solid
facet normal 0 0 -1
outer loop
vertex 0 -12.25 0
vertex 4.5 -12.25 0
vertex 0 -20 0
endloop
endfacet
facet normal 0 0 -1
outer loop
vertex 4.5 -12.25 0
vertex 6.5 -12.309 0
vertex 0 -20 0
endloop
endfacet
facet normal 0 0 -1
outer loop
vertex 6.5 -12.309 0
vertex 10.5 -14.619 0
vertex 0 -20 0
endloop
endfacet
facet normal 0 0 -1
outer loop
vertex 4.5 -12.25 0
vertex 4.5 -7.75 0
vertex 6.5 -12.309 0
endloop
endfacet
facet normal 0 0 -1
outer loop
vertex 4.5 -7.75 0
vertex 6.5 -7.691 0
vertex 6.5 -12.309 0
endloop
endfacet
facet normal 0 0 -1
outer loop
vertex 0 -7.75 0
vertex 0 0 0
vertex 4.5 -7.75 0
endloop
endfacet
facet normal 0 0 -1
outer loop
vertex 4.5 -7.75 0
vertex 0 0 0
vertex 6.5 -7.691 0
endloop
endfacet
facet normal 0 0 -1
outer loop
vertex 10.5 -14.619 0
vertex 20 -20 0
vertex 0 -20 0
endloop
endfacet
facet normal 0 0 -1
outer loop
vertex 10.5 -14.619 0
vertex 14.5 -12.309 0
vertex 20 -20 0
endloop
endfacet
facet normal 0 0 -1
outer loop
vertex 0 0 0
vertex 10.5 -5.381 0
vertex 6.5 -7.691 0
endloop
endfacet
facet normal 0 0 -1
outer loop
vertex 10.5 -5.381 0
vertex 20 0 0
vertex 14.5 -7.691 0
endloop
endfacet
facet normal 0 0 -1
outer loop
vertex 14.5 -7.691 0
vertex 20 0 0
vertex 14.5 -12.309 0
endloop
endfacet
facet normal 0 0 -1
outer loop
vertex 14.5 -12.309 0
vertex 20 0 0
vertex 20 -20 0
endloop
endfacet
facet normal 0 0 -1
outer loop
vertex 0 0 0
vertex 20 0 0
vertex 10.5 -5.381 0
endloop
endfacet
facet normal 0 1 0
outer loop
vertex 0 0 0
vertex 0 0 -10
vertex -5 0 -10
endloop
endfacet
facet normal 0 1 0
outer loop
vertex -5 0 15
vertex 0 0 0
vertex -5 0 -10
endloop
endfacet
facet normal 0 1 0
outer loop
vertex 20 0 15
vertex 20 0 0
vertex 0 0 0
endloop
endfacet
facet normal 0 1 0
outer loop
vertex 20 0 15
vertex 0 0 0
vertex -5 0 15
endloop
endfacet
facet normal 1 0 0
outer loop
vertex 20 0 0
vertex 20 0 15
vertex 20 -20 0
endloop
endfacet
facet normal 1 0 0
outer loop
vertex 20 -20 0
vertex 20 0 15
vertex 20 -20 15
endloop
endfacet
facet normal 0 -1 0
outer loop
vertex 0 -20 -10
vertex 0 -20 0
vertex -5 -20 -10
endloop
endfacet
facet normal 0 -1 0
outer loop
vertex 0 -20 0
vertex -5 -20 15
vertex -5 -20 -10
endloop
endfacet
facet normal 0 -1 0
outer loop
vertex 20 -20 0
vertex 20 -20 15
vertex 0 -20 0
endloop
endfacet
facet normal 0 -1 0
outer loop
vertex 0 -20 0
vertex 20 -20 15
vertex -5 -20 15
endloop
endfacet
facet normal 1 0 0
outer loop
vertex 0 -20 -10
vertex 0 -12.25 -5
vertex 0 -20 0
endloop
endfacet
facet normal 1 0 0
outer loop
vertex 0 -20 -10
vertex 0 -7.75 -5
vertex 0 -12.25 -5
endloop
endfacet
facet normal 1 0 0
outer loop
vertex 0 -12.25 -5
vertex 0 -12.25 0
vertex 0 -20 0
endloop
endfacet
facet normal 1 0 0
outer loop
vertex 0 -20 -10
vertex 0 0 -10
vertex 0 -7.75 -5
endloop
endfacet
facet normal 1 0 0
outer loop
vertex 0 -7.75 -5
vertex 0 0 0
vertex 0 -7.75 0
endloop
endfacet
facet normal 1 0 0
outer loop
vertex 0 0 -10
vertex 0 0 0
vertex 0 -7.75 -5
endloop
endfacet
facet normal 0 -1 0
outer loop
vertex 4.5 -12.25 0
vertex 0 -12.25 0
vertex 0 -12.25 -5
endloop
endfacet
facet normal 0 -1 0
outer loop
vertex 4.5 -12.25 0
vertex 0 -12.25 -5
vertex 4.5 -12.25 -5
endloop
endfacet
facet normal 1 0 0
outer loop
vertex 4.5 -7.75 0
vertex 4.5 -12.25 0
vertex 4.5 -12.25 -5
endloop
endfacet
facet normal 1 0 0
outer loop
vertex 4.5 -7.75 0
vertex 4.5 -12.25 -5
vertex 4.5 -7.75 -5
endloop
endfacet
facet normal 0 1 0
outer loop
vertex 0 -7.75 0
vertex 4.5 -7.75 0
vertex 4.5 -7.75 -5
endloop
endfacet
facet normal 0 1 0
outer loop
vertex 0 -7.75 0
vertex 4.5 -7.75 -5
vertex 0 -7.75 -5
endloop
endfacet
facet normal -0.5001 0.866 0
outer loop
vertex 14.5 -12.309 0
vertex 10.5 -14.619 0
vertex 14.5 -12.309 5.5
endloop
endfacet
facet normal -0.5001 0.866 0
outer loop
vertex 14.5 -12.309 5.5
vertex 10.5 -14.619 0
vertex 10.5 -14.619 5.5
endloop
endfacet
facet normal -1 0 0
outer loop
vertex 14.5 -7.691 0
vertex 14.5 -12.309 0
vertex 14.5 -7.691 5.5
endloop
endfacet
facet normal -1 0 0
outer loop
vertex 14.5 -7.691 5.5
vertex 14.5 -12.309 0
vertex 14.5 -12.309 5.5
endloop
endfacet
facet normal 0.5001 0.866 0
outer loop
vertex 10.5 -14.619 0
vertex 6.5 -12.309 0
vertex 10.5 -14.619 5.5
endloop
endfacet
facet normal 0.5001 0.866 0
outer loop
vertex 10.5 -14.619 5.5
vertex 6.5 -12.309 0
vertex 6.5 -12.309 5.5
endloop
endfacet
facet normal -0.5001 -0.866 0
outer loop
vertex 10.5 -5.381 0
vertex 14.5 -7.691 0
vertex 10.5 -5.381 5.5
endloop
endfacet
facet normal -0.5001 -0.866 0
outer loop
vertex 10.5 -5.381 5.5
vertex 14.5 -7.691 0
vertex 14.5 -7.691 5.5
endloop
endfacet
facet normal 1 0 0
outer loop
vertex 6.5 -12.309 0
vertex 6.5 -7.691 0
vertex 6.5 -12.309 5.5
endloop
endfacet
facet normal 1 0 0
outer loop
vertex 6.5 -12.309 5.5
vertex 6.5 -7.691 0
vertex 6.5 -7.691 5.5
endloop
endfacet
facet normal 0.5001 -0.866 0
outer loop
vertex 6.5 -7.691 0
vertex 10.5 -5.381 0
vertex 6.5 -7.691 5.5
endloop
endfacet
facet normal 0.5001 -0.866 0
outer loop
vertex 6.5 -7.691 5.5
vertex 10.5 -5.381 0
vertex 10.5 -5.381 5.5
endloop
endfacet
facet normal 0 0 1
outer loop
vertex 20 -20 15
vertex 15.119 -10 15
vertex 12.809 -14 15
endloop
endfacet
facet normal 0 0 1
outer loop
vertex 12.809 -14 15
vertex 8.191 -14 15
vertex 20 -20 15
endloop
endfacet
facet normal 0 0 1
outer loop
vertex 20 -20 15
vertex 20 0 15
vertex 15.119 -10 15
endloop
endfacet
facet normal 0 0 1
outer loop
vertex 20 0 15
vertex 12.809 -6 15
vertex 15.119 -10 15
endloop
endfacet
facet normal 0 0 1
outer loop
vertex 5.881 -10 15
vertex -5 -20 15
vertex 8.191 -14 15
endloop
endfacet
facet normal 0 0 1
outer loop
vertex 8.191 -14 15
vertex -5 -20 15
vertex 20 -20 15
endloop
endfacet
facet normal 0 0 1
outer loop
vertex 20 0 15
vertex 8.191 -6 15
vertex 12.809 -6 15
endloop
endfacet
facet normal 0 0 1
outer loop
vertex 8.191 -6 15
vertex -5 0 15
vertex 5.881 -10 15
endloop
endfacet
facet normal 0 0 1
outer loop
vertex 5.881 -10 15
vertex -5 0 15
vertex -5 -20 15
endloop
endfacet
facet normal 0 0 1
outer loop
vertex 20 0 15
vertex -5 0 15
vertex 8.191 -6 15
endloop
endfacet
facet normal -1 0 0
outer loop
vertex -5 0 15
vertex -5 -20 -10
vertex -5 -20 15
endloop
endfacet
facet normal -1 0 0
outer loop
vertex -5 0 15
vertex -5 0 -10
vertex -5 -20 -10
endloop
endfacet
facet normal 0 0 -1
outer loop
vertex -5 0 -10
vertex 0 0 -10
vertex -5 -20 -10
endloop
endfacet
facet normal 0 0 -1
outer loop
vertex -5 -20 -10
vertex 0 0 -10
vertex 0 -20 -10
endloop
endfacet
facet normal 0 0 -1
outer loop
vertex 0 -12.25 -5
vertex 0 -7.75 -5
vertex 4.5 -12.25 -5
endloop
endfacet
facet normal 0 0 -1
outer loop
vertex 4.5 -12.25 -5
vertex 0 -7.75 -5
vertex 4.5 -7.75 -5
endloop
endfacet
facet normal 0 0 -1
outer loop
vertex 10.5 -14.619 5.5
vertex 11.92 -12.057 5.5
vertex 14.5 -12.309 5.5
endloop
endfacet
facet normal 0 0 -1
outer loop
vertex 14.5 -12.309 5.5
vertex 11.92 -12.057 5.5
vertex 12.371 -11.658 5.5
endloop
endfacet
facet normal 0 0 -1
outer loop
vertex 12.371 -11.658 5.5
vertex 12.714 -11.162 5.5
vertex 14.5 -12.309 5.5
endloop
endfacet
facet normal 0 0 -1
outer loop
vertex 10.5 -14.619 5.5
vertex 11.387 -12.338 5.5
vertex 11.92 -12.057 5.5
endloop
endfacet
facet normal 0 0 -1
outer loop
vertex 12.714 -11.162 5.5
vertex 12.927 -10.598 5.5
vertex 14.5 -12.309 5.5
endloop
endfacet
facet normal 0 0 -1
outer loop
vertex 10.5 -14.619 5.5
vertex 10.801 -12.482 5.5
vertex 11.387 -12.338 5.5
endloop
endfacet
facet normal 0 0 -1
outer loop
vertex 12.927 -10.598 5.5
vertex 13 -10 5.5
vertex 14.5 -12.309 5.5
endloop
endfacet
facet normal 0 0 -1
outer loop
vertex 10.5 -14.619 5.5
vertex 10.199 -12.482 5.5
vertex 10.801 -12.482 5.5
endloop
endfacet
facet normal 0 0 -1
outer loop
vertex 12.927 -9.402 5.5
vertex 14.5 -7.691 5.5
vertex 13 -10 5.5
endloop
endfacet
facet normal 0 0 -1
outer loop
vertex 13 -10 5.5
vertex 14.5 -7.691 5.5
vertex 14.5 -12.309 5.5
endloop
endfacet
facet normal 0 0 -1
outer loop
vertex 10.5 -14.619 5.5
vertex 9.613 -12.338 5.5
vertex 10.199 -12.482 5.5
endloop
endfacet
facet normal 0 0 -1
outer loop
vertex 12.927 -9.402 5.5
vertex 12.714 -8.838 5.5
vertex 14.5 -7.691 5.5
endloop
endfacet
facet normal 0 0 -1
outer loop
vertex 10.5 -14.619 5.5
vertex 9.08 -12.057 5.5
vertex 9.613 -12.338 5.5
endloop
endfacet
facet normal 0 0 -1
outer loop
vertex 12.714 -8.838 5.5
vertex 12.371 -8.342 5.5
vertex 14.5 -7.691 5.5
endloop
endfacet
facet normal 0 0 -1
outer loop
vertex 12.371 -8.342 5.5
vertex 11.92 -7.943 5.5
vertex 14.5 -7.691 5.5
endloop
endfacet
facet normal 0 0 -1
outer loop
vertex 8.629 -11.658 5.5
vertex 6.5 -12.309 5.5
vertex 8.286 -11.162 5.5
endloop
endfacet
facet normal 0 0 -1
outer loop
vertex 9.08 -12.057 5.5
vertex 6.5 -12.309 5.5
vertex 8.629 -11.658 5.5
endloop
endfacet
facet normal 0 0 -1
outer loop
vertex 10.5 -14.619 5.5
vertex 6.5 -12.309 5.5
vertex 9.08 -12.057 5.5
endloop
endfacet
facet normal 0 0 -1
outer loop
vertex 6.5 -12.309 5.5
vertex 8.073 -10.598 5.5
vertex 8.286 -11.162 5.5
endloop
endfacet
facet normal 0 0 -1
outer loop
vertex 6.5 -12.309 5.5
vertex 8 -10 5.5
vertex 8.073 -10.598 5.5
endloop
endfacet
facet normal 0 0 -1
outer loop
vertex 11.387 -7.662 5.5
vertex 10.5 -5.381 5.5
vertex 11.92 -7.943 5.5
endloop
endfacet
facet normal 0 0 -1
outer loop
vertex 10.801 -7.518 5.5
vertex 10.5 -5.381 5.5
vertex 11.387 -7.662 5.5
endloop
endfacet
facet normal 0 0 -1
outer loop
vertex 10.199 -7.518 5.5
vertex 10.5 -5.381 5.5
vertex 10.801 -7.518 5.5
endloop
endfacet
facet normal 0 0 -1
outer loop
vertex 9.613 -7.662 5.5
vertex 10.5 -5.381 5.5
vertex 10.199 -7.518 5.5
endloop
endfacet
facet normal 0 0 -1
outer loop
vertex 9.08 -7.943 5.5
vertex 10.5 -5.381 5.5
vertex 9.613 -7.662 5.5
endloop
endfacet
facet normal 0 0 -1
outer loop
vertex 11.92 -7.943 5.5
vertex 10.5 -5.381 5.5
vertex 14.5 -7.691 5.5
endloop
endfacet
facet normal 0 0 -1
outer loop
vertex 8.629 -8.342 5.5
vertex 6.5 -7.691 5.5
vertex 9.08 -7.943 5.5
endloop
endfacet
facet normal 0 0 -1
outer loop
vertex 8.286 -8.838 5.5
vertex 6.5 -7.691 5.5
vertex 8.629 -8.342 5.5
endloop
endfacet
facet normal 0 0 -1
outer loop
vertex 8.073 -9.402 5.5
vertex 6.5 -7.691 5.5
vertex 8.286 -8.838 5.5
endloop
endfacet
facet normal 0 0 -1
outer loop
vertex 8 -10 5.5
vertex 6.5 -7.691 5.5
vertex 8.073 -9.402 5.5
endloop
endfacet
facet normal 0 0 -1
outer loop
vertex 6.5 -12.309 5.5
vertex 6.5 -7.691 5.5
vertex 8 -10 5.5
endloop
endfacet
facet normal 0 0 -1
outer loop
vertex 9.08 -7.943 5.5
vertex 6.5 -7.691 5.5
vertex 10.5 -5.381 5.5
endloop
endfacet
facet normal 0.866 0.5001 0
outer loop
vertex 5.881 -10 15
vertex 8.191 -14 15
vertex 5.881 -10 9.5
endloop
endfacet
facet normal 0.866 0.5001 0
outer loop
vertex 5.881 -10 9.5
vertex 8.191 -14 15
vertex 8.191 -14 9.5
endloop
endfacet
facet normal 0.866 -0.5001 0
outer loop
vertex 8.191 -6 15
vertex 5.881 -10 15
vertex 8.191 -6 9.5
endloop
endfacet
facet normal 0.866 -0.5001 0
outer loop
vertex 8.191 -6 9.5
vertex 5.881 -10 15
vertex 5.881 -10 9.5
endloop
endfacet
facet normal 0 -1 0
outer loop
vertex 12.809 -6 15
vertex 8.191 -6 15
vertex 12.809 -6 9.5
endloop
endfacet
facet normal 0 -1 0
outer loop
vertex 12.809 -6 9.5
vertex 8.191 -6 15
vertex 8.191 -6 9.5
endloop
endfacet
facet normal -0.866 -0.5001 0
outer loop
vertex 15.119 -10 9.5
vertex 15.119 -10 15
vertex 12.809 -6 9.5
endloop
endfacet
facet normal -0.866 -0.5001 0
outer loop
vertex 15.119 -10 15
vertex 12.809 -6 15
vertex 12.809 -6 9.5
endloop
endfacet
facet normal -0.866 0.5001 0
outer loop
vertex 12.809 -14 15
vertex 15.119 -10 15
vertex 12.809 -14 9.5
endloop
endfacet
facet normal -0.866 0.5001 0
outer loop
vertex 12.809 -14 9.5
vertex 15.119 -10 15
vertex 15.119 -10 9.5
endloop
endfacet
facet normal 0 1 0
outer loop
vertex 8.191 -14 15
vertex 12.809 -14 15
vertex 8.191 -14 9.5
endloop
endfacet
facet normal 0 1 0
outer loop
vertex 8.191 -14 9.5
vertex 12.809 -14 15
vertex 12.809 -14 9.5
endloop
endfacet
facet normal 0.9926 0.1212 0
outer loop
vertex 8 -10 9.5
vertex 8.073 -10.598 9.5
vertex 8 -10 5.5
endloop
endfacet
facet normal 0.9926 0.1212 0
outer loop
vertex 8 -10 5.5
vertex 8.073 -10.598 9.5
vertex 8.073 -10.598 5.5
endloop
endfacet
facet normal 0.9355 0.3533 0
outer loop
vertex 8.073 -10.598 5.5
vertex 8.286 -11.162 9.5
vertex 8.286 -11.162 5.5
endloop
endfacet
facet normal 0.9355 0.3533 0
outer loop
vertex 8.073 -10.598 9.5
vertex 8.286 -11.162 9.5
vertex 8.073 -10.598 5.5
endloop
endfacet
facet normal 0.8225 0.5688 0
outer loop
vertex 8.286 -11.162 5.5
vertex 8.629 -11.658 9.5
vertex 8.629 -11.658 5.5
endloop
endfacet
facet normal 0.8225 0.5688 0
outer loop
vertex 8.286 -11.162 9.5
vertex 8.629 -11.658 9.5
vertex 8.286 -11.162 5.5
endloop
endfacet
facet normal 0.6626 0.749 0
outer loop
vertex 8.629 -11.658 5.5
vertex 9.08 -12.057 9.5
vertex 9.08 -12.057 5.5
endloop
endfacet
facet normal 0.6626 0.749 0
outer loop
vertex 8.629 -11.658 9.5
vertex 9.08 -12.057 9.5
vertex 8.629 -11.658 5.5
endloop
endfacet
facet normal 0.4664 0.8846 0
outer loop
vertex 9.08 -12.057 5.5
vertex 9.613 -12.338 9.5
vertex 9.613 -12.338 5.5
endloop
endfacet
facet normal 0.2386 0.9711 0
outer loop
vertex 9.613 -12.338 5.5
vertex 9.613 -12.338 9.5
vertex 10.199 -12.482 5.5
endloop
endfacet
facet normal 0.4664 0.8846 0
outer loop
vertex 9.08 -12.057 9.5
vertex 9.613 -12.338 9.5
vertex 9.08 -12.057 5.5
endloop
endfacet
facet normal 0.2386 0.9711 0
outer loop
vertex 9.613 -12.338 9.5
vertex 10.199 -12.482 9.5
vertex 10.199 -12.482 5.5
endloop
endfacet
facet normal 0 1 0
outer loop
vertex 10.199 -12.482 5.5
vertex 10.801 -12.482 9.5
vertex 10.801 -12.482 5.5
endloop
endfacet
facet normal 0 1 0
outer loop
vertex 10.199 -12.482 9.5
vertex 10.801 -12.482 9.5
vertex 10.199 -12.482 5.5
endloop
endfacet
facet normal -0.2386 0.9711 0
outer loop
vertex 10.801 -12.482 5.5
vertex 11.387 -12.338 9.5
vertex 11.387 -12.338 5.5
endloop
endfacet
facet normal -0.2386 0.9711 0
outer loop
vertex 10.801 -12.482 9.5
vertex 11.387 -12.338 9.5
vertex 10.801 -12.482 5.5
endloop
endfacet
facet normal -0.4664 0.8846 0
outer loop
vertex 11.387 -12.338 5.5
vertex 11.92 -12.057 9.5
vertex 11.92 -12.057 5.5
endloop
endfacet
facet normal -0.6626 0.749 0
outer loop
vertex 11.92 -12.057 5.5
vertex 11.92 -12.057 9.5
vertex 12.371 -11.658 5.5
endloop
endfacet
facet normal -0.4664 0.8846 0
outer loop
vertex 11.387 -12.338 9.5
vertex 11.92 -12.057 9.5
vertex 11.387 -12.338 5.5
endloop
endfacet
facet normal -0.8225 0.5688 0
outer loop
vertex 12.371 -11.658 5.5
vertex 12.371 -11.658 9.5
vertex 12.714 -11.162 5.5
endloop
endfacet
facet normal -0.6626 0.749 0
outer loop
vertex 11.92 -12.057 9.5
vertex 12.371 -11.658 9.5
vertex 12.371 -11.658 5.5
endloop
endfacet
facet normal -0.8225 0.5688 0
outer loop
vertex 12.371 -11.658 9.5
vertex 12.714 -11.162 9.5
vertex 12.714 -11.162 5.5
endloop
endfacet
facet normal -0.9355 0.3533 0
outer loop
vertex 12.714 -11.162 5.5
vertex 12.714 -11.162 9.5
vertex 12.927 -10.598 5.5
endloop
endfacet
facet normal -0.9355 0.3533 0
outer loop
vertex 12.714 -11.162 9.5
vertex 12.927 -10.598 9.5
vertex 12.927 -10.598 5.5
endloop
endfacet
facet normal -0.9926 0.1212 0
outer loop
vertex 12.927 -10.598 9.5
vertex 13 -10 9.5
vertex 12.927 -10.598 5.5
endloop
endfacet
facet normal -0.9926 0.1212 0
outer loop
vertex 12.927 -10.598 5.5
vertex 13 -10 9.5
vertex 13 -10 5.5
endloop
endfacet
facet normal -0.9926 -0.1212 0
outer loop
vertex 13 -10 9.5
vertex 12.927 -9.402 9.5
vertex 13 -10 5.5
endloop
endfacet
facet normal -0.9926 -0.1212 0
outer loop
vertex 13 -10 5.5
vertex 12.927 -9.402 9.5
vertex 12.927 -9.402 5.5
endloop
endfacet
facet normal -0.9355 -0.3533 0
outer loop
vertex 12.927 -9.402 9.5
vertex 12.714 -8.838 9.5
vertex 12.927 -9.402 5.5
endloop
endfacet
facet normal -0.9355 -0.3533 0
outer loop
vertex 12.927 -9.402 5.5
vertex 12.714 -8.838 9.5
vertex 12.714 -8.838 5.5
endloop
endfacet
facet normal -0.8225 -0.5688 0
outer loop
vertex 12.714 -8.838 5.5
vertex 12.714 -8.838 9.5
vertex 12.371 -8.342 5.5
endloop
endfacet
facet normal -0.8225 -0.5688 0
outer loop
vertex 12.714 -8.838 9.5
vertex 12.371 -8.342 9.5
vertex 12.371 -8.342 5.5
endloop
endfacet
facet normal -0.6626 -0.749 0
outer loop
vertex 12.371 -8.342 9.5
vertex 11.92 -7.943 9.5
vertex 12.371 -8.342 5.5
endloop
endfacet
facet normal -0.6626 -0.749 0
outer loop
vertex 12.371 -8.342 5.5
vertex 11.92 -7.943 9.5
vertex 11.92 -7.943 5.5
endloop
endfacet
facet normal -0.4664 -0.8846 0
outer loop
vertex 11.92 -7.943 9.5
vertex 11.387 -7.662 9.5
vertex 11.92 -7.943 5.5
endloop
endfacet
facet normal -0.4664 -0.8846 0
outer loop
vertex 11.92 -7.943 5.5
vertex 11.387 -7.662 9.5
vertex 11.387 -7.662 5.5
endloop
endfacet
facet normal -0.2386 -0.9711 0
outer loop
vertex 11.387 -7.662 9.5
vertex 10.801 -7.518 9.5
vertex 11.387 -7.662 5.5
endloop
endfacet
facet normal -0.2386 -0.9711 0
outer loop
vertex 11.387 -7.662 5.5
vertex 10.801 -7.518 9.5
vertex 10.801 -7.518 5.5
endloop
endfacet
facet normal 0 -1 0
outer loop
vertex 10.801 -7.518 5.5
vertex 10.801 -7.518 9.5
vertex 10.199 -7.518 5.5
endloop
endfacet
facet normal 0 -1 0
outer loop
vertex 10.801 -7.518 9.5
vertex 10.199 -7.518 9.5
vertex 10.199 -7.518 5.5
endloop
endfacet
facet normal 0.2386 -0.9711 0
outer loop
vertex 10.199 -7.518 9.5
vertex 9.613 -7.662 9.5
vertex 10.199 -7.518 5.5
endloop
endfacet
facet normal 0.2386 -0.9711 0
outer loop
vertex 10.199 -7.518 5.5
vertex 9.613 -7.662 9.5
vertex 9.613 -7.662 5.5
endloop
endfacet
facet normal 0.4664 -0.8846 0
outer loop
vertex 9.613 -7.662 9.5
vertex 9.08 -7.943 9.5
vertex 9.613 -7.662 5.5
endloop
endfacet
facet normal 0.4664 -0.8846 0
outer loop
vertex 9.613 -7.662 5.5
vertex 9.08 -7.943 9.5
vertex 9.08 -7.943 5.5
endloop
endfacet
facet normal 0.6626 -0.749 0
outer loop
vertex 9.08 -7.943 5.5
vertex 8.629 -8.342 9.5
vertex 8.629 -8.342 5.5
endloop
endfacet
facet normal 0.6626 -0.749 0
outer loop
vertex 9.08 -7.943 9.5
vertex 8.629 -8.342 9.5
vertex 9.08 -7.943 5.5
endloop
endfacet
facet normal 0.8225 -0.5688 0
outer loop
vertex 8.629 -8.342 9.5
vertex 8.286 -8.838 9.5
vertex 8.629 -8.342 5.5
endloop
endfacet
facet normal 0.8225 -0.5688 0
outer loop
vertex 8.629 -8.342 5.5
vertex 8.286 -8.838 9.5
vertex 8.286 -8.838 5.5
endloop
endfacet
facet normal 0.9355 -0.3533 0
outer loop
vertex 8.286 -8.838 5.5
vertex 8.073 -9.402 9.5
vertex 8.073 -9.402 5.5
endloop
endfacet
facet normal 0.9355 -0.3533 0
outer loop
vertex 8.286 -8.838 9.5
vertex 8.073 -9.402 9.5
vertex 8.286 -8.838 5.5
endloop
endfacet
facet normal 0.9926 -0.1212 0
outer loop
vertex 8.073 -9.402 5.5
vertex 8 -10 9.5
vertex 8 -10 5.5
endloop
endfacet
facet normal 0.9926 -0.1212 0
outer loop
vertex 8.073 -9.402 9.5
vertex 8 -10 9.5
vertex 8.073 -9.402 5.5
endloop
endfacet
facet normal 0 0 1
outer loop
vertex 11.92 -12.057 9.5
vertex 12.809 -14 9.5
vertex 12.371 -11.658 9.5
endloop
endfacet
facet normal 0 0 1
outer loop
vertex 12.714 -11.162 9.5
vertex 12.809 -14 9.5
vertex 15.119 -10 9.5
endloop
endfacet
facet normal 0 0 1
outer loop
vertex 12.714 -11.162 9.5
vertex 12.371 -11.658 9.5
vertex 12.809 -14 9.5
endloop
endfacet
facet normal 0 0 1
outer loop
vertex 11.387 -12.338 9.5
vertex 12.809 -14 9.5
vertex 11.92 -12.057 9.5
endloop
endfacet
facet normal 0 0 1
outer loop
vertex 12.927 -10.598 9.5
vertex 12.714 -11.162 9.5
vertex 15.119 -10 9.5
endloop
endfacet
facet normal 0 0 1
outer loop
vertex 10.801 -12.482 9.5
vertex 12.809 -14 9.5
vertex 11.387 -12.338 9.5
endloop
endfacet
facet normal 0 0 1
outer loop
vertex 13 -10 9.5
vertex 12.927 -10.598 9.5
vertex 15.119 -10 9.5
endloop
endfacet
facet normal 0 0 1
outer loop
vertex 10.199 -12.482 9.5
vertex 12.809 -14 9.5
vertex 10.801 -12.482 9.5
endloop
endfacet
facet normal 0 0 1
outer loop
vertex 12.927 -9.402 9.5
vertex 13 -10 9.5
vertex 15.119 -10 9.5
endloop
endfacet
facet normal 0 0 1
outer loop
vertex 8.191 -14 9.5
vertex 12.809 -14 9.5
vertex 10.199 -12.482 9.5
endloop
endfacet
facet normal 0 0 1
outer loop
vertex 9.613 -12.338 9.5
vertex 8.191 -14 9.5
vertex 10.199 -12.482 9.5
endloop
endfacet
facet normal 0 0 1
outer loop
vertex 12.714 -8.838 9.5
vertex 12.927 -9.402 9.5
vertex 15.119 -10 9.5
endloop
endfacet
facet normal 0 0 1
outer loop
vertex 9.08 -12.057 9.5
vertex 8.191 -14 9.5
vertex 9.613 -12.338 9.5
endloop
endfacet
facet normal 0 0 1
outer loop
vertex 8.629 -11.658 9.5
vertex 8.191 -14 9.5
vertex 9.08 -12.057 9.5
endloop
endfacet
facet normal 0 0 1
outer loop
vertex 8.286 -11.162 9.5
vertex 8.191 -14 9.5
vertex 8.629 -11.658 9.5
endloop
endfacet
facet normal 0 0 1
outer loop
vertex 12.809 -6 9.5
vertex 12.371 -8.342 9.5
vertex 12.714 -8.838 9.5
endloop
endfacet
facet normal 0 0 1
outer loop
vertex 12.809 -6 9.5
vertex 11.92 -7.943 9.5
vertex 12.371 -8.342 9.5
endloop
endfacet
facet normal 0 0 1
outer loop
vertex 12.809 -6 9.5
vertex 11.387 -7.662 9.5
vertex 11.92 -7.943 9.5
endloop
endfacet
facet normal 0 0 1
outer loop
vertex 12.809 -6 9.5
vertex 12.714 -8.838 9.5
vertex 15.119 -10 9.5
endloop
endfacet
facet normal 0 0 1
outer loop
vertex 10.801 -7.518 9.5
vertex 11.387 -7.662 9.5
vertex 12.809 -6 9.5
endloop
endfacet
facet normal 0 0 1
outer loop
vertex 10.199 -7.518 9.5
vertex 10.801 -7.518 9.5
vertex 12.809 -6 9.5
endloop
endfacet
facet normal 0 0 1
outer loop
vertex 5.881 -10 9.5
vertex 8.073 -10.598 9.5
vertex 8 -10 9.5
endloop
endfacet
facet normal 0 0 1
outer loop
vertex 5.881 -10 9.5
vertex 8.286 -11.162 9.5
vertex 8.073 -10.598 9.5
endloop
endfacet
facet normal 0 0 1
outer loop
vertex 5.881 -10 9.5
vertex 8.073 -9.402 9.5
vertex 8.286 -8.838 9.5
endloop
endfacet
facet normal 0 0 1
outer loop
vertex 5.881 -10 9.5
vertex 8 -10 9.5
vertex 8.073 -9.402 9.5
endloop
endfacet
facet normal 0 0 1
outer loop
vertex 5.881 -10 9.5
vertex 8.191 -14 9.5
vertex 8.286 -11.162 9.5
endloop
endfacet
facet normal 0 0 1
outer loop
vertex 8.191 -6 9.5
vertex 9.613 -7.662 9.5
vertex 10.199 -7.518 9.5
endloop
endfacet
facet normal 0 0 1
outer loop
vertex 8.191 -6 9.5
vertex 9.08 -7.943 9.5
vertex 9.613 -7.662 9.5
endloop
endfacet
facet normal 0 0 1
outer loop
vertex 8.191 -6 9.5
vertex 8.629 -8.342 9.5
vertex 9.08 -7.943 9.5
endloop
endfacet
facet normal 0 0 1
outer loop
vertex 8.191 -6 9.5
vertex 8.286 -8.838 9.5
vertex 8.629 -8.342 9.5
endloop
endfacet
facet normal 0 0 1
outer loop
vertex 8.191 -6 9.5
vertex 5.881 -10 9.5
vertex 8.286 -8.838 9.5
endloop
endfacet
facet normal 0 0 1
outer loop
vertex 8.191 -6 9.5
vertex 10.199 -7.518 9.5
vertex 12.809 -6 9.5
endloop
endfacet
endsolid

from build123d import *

# Parameters (mm, degrees)
PAD_DEPTH       = 20
SKETCH001_R     = 2.5
POCKET_DEPTH    = 25.001
POCKET001_DEPTH = 5.5
POCKET002_DEPTH = 5.5
SKETCH004_W     = 4.5
SKETCH004_H     = 4.5
PAD001_DEPTH    = 5


with BuildPart() as part:
    # Sketch → Pad (new body)
    with BuildSketch(Plane.XZ):
        Polygon((0, 0), (20, 0), (20, 15), (-5, 15), (-5, -10), (0, -10), align=None)
    extrude(amount=PAD_DEPTH)

    # Sketch001 (on Face3 of Pad) → Pocket (cut, through all)
    with BuildSketch(Plane(origin=(0, 0, 15), x_dir=(-1, 0, 0), z_dir=(0, 0, 1))):
        with Locations((-10.5, 10)):
            Circle(SKETCH001_R)
    extrude(amount=-POCKET_DEPTH, mode=Mode.SUBTRACT)

    # Sketch002 (on Face8 of Pocket) → Pocket001 (cut)
    with BuildSketch(Plane(origin=(0, 0, 15), x_dir=(-1, 0, 0), z_dir=(0, 0, 1))):
        Polygon((-8.190599, 14), (-12.809401, 14), (-15.118802, 10), (-12.809401, 6), (-8.190599, 6), (-5.881198, 10), align=None)
    extrude(amount=-POCKET001_DEPTH, mode=Mode.SUBTRACT)

    # Sketch003 (on Face1 of Pocket001) → Pocket002 (cut)
    with BuildSketch(Plane(origin=(0, 0, 0), x_dir=(1, 0, 0), z_dir=(0, 0, -1))):
        Polygon((10.5, 14.618802), (6.5, 12.309401), (6.5, 7.690599), (10.5, 5.381198), (14.5, 7.690599), (14.5, 12.309401), align=None)
    extrude(amount=-POCKET002_DEPTH, mode=Mode.SUBTRACT)

    # Sketch004 (on Face1 of Pocket002) → Pad001 (join)
    with BuildSketch(Plane(origin=(0, 0, 0), x_dir=(1, 0, 0), z_dir=(0, 0, -1))):
        with Locations((2.25, 10)):
            Rectangle(SKETCH004_W, SKETCH004_H)
    extrude(amount=PAD001_DEPTH)


solid = part.part
